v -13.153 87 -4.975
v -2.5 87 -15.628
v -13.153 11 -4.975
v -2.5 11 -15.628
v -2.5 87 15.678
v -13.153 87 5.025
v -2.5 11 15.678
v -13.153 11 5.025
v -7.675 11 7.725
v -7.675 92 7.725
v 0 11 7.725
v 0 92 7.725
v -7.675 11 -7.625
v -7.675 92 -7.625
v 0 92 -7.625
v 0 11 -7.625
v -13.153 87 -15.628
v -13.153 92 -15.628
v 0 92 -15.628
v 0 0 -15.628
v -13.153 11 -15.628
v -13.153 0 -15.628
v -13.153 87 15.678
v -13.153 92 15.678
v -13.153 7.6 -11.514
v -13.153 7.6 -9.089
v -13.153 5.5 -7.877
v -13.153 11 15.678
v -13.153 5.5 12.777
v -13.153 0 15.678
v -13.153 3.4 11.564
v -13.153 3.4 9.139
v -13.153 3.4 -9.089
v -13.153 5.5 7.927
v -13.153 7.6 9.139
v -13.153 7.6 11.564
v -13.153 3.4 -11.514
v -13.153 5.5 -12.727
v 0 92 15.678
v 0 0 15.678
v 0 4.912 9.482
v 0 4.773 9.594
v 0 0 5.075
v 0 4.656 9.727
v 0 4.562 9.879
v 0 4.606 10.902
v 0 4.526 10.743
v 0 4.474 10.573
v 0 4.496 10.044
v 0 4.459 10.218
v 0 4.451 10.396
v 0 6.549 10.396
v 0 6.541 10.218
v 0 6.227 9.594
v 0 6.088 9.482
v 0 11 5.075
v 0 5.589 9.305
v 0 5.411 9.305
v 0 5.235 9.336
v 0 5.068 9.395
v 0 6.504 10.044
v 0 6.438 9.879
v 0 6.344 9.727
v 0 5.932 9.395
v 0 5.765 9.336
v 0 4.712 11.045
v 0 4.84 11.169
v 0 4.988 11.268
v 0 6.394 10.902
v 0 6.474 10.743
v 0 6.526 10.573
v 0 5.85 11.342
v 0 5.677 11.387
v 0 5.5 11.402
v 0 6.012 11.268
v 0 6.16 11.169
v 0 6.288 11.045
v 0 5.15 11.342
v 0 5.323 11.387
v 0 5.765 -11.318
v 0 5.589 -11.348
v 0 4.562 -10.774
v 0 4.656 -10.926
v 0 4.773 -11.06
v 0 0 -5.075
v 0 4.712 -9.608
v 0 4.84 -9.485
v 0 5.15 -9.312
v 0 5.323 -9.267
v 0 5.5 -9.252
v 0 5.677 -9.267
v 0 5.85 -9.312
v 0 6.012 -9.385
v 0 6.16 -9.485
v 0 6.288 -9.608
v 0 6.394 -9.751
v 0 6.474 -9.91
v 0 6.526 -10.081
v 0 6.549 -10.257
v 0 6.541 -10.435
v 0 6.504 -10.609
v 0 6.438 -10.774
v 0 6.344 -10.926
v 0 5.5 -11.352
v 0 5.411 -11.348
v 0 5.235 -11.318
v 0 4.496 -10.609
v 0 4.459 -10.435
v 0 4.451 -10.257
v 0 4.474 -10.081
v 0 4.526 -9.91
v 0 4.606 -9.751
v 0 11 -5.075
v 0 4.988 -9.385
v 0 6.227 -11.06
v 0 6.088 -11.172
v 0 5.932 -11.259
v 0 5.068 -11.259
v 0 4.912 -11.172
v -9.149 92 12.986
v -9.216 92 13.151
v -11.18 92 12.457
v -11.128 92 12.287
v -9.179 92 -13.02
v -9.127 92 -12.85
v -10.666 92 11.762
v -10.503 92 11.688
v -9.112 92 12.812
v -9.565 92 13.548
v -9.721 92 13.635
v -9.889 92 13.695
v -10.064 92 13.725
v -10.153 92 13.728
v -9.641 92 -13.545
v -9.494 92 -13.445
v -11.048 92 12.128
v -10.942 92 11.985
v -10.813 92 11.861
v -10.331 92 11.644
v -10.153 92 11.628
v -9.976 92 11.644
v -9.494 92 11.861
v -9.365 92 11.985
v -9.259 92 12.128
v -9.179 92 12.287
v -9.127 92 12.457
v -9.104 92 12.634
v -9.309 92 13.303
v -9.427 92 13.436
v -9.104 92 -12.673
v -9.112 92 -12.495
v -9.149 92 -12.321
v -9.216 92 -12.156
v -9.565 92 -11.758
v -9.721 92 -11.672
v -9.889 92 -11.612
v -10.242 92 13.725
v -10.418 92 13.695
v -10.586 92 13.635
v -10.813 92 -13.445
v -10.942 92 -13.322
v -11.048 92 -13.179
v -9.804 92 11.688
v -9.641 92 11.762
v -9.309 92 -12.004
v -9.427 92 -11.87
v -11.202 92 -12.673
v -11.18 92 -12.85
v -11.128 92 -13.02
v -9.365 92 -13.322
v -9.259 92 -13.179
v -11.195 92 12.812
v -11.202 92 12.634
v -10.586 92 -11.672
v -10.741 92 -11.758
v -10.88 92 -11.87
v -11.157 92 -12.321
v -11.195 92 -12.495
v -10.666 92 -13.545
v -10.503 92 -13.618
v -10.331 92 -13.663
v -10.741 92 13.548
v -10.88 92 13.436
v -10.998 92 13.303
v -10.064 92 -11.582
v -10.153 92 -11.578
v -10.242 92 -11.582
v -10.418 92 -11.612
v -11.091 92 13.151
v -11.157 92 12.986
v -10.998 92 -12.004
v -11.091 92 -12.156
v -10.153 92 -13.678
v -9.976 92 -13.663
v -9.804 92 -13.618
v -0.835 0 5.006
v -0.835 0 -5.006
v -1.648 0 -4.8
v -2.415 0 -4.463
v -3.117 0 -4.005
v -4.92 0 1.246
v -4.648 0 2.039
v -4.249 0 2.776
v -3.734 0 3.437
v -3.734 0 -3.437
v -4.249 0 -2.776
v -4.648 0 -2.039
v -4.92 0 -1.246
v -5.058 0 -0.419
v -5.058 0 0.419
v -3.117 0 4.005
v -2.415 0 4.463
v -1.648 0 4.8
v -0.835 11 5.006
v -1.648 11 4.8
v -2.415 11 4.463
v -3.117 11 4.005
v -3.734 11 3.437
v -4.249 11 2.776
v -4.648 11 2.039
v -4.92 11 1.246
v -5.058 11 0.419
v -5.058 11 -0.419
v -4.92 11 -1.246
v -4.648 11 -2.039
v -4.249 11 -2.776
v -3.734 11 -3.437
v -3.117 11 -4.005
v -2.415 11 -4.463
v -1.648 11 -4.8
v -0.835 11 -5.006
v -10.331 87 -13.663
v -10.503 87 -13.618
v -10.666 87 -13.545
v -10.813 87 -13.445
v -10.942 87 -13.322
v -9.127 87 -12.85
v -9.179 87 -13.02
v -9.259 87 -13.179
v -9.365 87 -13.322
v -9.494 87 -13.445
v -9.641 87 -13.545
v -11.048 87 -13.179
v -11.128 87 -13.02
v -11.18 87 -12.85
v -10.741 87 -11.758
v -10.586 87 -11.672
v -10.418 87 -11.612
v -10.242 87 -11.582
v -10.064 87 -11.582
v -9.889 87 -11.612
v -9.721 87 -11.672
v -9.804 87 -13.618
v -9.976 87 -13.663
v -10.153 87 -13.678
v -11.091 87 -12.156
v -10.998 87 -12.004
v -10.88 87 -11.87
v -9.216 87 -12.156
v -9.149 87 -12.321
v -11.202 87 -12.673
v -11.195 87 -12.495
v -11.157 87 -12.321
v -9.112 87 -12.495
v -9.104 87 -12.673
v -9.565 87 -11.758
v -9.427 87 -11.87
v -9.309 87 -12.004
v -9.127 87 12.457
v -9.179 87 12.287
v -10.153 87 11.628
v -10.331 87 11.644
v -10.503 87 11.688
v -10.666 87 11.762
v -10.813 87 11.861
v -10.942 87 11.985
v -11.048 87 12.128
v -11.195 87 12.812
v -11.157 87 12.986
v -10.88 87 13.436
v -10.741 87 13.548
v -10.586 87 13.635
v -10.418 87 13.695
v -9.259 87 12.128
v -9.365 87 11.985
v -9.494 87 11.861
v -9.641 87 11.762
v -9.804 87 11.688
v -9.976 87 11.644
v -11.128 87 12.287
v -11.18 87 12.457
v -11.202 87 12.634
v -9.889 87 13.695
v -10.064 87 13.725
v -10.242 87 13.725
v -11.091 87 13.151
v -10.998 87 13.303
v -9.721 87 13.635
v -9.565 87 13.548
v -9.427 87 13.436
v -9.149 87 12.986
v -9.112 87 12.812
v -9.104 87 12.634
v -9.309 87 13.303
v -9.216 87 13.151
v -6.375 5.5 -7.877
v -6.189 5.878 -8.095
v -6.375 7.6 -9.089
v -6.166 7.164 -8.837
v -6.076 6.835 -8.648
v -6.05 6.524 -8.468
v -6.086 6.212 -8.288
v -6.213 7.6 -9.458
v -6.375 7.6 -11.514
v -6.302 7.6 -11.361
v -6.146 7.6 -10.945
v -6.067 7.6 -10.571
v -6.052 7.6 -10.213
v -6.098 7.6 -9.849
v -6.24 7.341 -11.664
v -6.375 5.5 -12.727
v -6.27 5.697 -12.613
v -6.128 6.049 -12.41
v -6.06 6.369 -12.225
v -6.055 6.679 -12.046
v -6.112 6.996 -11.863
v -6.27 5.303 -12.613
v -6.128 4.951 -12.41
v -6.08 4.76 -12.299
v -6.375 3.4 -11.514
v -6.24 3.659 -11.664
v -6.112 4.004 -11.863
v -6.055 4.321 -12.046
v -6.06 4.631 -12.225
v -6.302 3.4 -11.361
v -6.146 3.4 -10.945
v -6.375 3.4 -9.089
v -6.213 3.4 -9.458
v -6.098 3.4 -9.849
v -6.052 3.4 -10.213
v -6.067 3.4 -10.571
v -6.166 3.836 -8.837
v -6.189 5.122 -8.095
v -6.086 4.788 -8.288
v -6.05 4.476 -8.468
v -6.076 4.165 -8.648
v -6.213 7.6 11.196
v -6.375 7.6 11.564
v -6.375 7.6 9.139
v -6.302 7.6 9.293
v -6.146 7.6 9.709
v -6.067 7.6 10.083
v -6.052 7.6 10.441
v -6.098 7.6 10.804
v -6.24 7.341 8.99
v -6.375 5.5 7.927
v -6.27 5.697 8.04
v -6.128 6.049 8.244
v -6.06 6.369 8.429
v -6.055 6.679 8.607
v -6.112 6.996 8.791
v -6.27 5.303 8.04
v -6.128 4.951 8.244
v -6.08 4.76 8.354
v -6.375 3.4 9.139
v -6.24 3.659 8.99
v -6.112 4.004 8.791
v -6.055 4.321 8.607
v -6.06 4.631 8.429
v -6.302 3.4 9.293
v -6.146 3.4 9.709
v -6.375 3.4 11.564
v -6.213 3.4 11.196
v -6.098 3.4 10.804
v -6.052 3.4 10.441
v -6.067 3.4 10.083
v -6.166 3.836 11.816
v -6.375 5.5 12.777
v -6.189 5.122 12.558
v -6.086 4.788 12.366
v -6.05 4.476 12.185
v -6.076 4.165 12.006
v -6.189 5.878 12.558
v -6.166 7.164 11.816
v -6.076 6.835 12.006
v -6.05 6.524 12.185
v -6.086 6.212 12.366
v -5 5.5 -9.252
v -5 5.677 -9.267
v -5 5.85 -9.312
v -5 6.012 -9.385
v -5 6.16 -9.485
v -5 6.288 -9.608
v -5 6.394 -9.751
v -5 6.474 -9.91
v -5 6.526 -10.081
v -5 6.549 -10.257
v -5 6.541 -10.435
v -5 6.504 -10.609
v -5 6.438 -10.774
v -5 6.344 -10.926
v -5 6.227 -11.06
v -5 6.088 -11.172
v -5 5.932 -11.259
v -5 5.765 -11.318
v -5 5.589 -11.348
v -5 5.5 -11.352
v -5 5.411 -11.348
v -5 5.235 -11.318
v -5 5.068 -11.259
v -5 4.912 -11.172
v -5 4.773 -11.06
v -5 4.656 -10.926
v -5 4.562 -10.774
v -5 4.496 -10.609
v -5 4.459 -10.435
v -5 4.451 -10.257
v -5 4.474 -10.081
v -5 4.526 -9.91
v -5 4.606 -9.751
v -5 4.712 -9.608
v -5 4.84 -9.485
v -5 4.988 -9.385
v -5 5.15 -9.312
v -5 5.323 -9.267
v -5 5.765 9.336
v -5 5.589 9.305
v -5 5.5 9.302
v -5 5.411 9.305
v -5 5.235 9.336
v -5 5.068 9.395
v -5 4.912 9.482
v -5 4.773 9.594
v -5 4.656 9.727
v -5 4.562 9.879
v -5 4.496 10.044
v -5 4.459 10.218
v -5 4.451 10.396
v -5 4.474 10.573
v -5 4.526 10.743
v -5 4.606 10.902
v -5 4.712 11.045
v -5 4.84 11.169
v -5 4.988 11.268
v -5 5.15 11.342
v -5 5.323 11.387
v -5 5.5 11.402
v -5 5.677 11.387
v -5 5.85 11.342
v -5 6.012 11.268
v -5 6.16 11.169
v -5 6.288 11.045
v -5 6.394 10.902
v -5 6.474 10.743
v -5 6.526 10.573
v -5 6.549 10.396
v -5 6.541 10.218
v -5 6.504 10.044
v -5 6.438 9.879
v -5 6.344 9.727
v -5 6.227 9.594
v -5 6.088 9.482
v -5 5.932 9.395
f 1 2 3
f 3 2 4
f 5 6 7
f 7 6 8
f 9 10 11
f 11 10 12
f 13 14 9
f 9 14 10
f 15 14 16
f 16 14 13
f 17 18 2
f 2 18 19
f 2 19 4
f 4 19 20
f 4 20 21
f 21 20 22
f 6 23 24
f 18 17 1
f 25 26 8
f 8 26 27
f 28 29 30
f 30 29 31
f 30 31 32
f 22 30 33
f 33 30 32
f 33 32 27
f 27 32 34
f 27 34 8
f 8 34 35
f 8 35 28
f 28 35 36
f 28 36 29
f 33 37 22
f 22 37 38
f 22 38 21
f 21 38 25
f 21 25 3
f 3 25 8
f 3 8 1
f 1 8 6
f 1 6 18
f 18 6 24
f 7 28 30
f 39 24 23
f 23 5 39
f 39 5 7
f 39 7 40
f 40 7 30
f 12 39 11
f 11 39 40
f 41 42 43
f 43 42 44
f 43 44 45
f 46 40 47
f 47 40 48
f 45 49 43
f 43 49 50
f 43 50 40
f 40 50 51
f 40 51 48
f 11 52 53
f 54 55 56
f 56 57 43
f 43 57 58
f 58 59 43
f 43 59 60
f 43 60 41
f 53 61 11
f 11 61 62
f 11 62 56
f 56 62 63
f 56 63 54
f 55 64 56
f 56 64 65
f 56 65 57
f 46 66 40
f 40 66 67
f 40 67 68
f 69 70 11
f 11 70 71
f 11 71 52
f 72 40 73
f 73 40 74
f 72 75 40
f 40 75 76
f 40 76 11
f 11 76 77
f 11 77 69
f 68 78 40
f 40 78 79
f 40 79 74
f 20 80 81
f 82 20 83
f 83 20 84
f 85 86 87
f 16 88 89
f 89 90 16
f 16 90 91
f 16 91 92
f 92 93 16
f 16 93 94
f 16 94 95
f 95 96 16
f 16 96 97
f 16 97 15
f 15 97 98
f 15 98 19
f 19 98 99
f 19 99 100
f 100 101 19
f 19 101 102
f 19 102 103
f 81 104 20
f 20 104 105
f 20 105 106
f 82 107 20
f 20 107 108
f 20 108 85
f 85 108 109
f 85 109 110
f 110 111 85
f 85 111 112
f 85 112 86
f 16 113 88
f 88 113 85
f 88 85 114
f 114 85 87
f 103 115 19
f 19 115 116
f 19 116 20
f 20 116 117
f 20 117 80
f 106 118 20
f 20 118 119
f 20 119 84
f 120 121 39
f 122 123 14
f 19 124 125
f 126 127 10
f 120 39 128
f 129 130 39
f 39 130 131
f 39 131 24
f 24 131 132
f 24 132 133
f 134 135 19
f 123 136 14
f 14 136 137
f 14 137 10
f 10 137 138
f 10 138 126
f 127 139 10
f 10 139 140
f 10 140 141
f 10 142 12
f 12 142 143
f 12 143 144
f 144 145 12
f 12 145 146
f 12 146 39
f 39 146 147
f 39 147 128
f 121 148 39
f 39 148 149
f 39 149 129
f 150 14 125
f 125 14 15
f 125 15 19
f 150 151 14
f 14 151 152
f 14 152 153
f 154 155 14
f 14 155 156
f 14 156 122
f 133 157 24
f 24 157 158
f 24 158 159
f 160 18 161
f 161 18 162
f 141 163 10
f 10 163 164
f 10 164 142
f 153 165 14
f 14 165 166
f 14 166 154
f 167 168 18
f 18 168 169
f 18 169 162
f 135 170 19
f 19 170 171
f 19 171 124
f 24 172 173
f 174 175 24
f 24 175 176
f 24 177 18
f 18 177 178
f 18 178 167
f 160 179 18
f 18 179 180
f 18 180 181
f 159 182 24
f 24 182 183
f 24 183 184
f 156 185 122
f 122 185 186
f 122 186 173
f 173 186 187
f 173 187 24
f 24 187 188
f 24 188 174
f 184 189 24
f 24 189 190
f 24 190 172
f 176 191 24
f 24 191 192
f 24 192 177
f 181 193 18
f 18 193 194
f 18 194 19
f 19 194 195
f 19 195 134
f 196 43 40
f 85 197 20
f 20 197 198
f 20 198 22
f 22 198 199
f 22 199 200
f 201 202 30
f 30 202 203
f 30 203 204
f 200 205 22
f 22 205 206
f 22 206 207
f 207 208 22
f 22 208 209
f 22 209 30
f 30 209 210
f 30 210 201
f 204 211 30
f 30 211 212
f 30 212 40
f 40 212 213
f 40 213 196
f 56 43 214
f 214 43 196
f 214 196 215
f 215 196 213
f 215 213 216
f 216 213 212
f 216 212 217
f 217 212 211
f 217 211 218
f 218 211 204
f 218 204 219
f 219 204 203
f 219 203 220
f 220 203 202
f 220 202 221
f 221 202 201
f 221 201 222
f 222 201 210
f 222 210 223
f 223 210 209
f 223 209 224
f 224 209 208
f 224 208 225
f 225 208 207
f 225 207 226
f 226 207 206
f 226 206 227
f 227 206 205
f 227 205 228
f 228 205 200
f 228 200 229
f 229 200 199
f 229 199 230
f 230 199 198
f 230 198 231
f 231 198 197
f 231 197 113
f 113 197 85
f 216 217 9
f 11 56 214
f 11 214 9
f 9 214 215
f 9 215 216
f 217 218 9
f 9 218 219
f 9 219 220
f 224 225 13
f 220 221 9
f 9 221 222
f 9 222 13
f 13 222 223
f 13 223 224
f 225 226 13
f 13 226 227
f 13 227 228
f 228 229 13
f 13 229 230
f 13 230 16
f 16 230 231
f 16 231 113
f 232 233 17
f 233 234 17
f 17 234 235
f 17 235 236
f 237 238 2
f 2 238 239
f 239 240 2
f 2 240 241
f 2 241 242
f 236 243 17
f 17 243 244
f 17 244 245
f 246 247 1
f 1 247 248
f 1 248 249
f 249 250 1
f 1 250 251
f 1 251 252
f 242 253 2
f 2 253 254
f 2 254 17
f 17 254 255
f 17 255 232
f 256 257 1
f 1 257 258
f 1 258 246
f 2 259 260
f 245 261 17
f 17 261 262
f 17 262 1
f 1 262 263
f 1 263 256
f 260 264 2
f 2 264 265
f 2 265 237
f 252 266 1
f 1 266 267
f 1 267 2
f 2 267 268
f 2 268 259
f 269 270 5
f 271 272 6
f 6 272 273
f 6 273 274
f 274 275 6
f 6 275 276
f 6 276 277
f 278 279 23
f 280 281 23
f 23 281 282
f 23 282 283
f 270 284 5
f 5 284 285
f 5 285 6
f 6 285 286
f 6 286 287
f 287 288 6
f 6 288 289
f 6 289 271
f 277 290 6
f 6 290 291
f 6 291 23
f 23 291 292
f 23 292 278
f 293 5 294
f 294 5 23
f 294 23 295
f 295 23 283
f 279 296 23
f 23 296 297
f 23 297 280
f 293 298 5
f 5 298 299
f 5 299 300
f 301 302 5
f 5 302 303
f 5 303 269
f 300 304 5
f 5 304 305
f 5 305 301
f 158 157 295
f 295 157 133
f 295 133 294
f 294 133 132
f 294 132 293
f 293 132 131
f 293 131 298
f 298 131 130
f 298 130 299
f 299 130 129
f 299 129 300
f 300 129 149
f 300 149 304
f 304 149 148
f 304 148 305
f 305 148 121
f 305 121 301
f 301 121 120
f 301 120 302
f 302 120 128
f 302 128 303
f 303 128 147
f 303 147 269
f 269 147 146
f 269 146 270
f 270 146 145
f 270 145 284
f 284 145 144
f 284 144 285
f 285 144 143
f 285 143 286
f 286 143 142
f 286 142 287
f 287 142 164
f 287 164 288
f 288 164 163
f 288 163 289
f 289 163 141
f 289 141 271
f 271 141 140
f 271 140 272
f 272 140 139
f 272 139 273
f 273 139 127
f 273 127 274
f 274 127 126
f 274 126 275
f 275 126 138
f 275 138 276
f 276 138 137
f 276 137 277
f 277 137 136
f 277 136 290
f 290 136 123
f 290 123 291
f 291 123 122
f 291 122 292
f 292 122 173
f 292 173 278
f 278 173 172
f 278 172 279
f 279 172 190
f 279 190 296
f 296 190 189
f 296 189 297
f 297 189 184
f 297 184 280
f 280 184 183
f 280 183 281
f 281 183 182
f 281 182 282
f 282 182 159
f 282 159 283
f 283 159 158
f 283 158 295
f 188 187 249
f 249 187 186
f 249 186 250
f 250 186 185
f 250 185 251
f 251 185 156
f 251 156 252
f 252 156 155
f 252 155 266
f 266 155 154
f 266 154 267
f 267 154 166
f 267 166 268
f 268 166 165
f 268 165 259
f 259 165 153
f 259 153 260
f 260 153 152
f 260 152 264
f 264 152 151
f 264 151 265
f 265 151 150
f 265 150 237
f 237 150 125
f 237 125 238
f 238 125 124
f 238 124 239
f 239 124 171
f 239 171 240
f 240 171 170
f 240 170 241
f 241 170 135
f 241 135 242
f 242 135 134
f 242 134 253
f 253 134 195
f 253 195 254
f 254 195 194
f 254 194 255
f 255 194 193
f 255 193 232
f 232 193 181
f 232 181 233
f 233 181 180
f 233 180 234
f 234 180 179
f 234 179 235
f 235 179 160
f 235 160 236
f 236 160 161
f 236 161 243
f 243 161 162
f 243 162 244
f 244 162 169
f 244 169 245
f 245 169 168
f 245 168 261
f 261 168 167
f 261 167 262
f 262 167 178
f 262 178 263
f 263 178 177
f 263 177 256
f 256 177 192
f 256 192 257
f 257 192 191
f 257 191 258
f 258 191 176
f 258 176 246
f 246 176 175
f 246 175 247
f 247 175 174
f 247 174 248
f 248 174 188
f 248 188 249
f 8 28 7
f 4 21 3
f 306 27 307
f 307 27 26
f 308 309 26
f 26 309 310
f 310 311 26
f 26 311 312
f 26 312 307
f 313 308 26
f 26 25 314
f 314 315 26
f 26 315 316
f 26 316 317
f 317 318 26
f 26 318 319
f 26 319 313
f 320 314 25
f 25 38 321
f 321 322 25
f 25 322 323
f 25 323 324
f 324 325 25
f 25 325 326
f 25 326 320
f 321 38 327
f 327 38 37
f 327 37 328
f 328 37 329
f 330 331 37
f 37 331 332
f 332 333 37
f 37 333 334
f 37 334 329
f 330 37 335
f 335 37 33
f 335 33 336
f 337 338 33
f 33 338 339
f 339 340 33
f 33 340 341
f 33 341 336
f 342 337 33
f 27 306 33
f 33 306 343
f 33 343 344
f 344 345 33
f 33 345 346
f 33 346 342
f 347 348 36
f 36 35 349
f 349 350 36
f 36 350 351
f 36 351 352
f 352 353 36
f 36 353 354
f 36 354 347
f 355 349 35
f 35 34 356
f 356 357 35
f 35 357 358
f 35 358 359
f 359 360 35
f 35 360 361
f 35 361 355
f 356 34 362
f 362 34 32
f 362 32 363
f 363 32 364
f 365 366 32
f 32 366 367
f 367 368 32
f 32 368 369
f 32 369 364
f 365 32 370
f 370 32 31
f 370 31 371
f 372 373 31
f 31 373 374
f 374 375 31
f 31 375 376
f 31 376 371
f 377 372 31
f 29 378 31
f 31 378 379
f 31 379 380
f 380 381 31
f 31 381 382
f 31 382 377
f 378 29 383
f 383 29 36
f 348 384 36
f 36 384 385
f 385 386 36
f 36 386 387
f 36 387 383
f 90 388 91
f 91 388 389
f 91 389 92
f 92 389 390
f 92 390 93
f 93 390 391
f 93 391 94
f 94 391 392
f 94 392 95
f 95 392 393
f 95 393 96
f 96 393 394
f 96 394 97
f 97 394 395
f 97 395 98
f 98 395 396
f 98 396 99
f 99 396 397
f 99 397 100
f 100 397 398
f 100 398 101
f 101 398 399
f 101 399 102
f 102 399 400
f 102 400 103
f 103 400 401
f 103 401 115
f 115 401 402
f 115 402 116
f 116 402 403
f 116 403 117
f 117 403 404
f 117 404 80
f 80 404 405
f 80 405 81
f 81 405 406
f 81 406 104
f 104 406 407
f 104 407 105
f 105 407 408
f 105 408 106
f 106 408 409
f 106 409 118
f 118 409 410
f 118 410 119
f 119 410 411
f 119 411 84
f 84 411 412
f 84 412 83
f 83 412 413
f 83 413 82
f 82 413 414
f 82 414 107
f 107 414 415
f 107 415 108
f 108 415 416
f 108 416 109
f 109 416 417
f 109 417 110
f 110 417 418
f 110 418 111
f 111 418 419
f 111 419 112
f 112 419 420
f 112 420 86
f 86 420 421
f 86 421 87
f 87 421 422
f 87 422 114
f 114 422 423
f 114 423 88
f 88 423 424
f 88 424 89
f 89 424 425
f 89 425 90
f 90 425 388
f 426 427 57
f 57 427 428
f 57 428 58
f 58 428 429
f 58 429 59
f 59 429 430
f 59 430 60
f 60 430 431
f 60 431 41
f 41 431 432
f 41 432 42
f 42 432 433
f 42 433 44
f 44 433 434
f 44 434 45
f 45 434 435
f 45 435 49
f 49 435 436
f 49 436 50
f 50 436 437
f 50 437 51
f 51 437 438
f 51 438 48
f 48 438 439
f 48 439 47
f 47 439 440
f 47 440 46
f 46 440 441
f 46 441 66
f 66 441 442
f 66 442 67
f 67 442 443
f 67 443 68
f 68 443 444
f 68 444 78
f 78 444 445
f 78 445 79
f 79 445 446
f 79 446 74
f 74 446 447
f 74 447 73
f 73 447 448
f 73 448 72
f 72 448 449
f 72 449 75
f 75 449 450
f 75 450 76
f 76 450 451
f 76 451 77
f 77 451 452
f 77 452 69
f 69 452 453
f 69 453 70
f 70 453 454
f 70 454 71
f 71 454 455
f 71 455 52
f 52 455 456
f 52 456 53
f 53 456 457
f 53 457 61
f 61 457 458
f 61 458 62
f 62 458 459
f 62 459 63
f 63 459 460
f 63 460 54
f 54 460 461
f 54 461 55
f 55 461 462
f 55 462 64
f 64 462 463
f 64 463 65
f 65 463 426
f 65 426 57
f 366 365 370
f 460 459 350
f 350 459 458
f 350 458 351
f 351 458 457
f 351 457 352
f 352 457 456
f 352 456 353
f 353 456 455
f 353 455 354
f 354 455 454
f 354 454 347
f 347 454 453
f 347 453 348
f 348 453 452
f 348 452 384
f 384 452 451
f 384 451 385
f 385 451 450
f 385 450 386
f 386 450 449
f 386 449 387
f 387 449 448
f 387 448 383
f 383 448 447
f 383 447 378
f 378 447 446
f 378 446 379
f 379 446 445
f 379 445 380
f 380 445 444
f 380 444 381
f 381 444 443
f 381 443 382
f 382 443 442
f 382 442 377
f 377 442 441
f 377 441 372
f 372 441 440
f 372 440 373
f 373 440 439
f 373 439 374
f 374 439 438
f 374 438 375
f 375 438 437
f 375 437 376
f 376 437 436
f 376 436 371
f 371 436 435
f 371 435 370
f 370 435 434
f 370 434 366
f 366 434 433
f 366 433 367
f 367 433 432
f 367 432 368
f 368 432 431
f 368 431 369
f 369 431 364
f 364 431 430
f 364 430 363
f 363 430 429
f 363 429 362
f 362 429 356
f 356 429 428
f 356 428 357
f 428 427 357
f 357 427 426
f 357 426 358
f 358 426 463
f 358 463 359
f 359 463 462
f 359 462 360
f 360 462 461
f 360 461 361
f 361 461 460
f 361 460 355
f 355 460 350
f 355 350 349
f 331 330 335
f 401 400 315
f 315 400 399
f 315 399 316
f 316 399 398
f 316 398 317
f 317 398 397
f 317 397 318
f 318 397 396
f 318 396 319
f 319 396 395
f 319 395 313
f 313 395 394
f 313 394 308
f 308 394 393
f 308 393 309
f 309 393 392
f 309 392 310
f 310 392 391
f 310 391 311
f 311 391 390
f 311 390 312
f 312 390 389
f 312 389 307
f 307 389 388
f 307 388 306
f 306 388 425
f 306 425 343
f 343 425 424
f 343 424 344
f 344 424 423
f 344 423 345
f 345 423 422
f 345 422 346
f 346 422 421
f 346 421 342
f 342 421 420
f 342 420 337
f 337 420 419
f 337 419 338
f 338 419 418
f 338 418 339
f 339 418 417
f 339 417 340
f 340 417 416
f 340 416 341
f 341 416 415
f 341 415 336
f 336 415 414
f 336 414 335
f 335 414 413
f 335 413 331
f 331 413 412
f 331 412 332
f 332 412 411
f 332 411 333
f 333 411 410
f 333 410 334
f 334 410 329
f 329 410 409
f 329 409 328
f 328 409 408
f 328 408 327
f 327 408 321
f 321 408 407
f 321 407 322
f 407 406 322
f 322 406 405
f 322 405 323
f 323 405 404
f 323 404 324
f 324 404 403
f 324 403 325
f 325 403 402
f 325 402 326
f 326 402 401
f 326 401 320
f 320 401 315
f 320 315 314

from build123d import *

# Parameters (mm, degrees)
BOSS_EXTRUDE1_DEPTH = 92
BOSS_EXTRUDE2_DEPTH = 11
BOSS_EXTRUDE3_DEPTH = 5
CUT_EXTRUDE1_REACH  = 91.375
SKETCH4_R           = 1.05
BOSS_EXTRUDE4_DEPTH = 11
CUT_EXTRUDE2_DEPTH  = 6.153427125
CUT_EXTRUDE3_REACH  = 96.249
SKETCH7_R           = 1.05
CHAMFER2_SIZE       = 2


with BuildPart() as part:
    # Sketch1 → Boss-Extrude1 (new body)
    with BuildSketch(Plane(origin=(0, 0, 0), x_dir=(1, 0, 0), z_dir=(0, 1, 0))):
        Polygon((0, 15.628427125), (-2.5, 15.628427125), (-13.153427125, 4.975), (-13.153427125, -5.025), (-2.5, -15.678427125), (0, -15.678427125), (0, -7.725), (-7.675, -7.725), (-7.675, 7.625), (0, 7.625), align=None)
    extrude(amount=BOSS_EXTRUDE1_DEPTH)

    # Sketch2 → Boss-Extrude2 (add)
    with BuildSketch(Plane.XZ):
        with BuildLine():
            Line((0, 7.725), (0, 5.075))
            ThreePointArc((0, 5.075), (-5.075, 0), (0, -5.075))
            Line((0, -5.075), (0, -7.625))
            Line((0, -7.625), (-7.675, -7.625))
            Line((-7.675, -7.625), (-7.675, 7.725))
            Line((-7.675, 7.725), (0, 7.725))
        make_face()
    extrude(amount=-BOSS_EXTRUDE2_DEPTH)

    # Sketch3 → Boss-Extrude3 (add)
    with BuildSketch(Plane(origin=(0, 92, 0), x_dir=(1, 0, 0), z_dir=(0, 1, 0))):
        Polygon((-2.5, 15.628427125), (-13.153427125, 15.628427125), (-13.153427125, 4.975), align=None)
        Polygon((-2.5, -15.678427125), (-13.153427125, -15.678427125), (-13.153427125, -5.025), align=None)
    extrude(amount=-BOSS_EXTRUDE3_DEPTH)

    # Sketch4 → Cut-Extrude1 (cut, up to next)
    with BuildSketch(Plane.XZ.offset(-87), mode=Mode.PRIVATE) as cut_extrude1_sk1:
        with Locations(Location((-10.153427125, 12.678427125, 0), (0, 0, 270))):
            Circle(SKETCH4_R)
    cut_extrude1_tool1 = extrude(cut_extrude1_sk1.sketch, amount=-CUT_EXTRUDE1_REACH, mode=Mode.PRIVATE) & part.part
    # Sketch4 → Cut-Extrude1 (cut, up to next)
    with BuildSketch(Plane.XZ.offset(-87), mode=Mode.PRIVATE) as cut_extrude1_sk2:
        with Locations(Location((-10.153427125, -12.628427125, 0), (0, 0, 270))):
            Circle(SKETCH4_R)
    cut_extrude1_tool2 = extrude(cut_extrude1_sk2.sketch, amount=-CUT_EXTRUDE1_REACH, mode=Mode.PRIVATE) & part.part
    add(cut_extrude1_tool1.solids().sort_by_distance((-10.153427, 87, 12.678427))[0], mode=Mode.SUBTRACT)
    add(cut_extrude1_tool2.solids().sort_by_distance((-10.153427, 87, -12.628427))[0], mode=Mode.SUBTRACT)

    # Sketch5 → Boss-Extrude4 (add)
    with BuildSketch(Plane.XZ):
        Polygon((-2.5, 15.678427125), (-13.153427125, 15.678427125), (-13.153427125, 5.025), align=None)
        Polygon((-13.153427125, -4.975), (-13.153427125, -15.628427125), (-2.5, -15.628427125), align=None)
    extrude(amount=-BOSS_EXTRUDE4_DEPTH)

    # Sketch6 → Cut-Extrude2 (cut)
    with BuildSketch(Plane.ZY.offset(13.153427125)):
        Polygon((11.564149128, 7.6), (9.139277997, 7.6), (7.926842432, 5.5), (9.139277997, 3.4), (11.564149128, 3.4), (12.776584693, 5.5), align=None)
        Polygon((-7.876842432, 5.5), (-9.089277997, 7.6), (-11.514149128, 7.6), (-12.726584693, 5.5), (-11.514149128, 3.4), (-9.089277997, 3.4), align=None)
    extrude(amount=-CUT_EXTRUDE2_DEPTH, mode=Mode.SUBTRACT)

    # Sketch7 → Cut-Extrude3 (cut, up to next)
    with BuildSketch(Plane.ZY.offset(13.153427125), mode=Mode.PRIVATE) as cut_extrude3_sk1:
        with Locations((-10.301713562, 5.5)):
            Circle(SKETCH7_R)
    cut_extrude3_tool1 = extrude(cut_extrude3_sk1.sketch, amount=-CUT_EXTRUDE3_REACH, mode=Mode.PRIVATE) & part.part
    # Sketch7 → Cut-Extrude3 (cut, up to next)
    with BuildSketch(Plane.ZY.offset(13.153427125), mode=Mode.PRIVATE) as cut_extrude3_sk2:
        with Locations((10.351713562, 5.5)):
            Circle(SKETCH7_R)
    cut_extrude3_tool2 = extrude(cut_extrude3_sk2.sketch, amount=-CUT_EXTRUDE3_REACH, mode=Mode.PRIVATE) & part.part
    add(cut_extrude3_tool1.solids().sort_by_distance((-13.153427, 5.5, -10.301714))[0], mode=Mode.SUBTRACT)
    add(cut_extrude3_tool2.solids().sort_by_distance((-13.153427, 5.5, 10.351714))[0], mode=Mode.SUBTRACT)

    # Chamfer2
    # the kernel refuses this chamfer: 2 mm, written as the material it takes off along each edge
    with BuildSketch(Plane(origin=(-7, 5.5, 10.351713562), x_dir=(0, 0, 1), z_dir=(0, -1, 0))) as chamfer2_piece_1_section:
        Polygon((1.05, -CHAMFER2_SIZE), (1.05 + CHAMFER2_SIZE, 0), (1.05, 0), align=None)
    chamfer2_piece_1 = revolve(axis=Axis((-7, 5.5, 10.351713562), (-1, 0, 0)), mode=Mode.PRIVATE)
    chamfer2_piece_1 = split(chamfer2_piece_1, bisect_by=Plane(origin=(-5.677336613, 7.282209745, 11.747625417), z_dir=(2.5539348178531628e-15, -0.5000000000000006, -0.8660254037844384)), keep=Keep.TOP, mode=Mode.PRIVATE)
    chamfer2_piece_1 = split(chamfer2_piece_1, bisect_by=Plane(origin=(-5.677336613, 3.717790255, 11.747625417), z_dir=(2.553934817853164e-15, 0.5000000000000003, -0.8660254037844387)), keep=Keep.TOP, mode=Mode.PRIVATE)
    chamfer2_piece_1 = split(chamfer2_piece_1, bisect_by=Plane(origin=(-5.677336613, 3.4, 8.660747588), z_dir=(0, 1, 0)), keep=Keep.TOP, mode=Mode.PRIVATE)
    chamfer2_piece_1 = split(chamfer2_piece_1, bisect_by=Plane(origin=(-5.677336613, 5.182209745, 8.110318721), z_dir=(-2.5539348178531624e-15, 0.5000000000000008, 0.8660254037844383)), keep=Keep.TOP, mode=Mode.PRIVATE)
    chamfer2_piece_1 = split(chamfer2_piece_1, bisect_by=Plane(origin=(-5.677336613, 5.817790255, 8.110318721), z_dir=(-2.5539348178531624e-15, -0.5000000000000007, 0.8660254037844384)), keep=Keep.TOP, mode=Mode.PRIVATE)
    chamfer2_piece_1 = split(chamfer2_piece_1, bisect_by=Plane(origin=(-5.677336613, 7.6, 8.660747588), z_dir=(0, -1, 0)), keep=Keep.TOP, mode=Mode.PRIVATE)
    add(chamfer2_piece_1, mode=Mode.SUBTRACT)
    with BuildSketch(Plane(origin=(-7, 5.5, -10.301713562), x_dir=(0, 0, 1), z_dir=(0, -1, 0))) as chamfer2_piece_2_section:
        Polygon((1.05, -CHAMFER2_SIZE), (1.05 + CHAMFER2_SIZE, 0), (1.05, 0), align=None)
    chamfer2_piece_2 = revolve(axis=Axis((-7, 5.5, -10.301713562), (-1, 0, 0)), mode=Mode.PRIVATE)
    chamfer2_piece_2 = split(chamfer2_piece_2, bisect_by=Plane(origin=(-5.677336613, 3.717790255, -8.905801708), z_dir=(2.5539348178531635e-15, 0.5000000000000004, -0.8660254037844385)), keep=Keep.TOP, mode=Mode.PRIVATE)
    chamfer2_piece_2 = split(chamfer2_piece_2, bisect_by=Plane(origin=(-5.677336613, 3.4, -11.992679537), z_dir=(0, 1, 0)), keep=Keep.TOP, mode=Mode.PRIVATE)
    chamfer2_piece_2 = split(chamfer2_piece_2, bisect_by=Plane(origin=(-5.677336613, 5.182209745, -12.543108404), z_dir=(-2.5539348178531647e-15, 0.49999999999999933, 0.866025403784439)), keep=Keep.TOP, mode=Mode.PRIVATE)
    chamfer2_piece_2 = split(chamfer2_piece_2, bisect_by=Plane(origin=(-5.677336613, 5.817790255, -12.543108404), z_dir=(-2.5539348178531624e-15, -0.5000000000000007, 0.8660254037844384)), keep=Keep.TOP, mode=Mode.PRIVATE)
    chamfer2_piece_2 = split(chamfer2_piece_2, bisect_by=Plane(origin=(-5.677336613, 7.6, -11.992679537), z_dir=(0, -1, 0)), keep=Keep.TOP, mode=Mode.PRIVATE)
    chamfer2_piece_2 = split(chamfer2_piece_2, bisect_by=Plane(origin=(-5.677336613, 7.282209745, -8.905801708), z_dir=(2.553934817853164e-15, -0.5000000000000002, -0.8660254037844386)), keep=Keep.TOP, mode=Mode.PRIVATE)
    add(chamfer2_piece_2, mode=Mode.SUBTRACT)


solid = part.part
